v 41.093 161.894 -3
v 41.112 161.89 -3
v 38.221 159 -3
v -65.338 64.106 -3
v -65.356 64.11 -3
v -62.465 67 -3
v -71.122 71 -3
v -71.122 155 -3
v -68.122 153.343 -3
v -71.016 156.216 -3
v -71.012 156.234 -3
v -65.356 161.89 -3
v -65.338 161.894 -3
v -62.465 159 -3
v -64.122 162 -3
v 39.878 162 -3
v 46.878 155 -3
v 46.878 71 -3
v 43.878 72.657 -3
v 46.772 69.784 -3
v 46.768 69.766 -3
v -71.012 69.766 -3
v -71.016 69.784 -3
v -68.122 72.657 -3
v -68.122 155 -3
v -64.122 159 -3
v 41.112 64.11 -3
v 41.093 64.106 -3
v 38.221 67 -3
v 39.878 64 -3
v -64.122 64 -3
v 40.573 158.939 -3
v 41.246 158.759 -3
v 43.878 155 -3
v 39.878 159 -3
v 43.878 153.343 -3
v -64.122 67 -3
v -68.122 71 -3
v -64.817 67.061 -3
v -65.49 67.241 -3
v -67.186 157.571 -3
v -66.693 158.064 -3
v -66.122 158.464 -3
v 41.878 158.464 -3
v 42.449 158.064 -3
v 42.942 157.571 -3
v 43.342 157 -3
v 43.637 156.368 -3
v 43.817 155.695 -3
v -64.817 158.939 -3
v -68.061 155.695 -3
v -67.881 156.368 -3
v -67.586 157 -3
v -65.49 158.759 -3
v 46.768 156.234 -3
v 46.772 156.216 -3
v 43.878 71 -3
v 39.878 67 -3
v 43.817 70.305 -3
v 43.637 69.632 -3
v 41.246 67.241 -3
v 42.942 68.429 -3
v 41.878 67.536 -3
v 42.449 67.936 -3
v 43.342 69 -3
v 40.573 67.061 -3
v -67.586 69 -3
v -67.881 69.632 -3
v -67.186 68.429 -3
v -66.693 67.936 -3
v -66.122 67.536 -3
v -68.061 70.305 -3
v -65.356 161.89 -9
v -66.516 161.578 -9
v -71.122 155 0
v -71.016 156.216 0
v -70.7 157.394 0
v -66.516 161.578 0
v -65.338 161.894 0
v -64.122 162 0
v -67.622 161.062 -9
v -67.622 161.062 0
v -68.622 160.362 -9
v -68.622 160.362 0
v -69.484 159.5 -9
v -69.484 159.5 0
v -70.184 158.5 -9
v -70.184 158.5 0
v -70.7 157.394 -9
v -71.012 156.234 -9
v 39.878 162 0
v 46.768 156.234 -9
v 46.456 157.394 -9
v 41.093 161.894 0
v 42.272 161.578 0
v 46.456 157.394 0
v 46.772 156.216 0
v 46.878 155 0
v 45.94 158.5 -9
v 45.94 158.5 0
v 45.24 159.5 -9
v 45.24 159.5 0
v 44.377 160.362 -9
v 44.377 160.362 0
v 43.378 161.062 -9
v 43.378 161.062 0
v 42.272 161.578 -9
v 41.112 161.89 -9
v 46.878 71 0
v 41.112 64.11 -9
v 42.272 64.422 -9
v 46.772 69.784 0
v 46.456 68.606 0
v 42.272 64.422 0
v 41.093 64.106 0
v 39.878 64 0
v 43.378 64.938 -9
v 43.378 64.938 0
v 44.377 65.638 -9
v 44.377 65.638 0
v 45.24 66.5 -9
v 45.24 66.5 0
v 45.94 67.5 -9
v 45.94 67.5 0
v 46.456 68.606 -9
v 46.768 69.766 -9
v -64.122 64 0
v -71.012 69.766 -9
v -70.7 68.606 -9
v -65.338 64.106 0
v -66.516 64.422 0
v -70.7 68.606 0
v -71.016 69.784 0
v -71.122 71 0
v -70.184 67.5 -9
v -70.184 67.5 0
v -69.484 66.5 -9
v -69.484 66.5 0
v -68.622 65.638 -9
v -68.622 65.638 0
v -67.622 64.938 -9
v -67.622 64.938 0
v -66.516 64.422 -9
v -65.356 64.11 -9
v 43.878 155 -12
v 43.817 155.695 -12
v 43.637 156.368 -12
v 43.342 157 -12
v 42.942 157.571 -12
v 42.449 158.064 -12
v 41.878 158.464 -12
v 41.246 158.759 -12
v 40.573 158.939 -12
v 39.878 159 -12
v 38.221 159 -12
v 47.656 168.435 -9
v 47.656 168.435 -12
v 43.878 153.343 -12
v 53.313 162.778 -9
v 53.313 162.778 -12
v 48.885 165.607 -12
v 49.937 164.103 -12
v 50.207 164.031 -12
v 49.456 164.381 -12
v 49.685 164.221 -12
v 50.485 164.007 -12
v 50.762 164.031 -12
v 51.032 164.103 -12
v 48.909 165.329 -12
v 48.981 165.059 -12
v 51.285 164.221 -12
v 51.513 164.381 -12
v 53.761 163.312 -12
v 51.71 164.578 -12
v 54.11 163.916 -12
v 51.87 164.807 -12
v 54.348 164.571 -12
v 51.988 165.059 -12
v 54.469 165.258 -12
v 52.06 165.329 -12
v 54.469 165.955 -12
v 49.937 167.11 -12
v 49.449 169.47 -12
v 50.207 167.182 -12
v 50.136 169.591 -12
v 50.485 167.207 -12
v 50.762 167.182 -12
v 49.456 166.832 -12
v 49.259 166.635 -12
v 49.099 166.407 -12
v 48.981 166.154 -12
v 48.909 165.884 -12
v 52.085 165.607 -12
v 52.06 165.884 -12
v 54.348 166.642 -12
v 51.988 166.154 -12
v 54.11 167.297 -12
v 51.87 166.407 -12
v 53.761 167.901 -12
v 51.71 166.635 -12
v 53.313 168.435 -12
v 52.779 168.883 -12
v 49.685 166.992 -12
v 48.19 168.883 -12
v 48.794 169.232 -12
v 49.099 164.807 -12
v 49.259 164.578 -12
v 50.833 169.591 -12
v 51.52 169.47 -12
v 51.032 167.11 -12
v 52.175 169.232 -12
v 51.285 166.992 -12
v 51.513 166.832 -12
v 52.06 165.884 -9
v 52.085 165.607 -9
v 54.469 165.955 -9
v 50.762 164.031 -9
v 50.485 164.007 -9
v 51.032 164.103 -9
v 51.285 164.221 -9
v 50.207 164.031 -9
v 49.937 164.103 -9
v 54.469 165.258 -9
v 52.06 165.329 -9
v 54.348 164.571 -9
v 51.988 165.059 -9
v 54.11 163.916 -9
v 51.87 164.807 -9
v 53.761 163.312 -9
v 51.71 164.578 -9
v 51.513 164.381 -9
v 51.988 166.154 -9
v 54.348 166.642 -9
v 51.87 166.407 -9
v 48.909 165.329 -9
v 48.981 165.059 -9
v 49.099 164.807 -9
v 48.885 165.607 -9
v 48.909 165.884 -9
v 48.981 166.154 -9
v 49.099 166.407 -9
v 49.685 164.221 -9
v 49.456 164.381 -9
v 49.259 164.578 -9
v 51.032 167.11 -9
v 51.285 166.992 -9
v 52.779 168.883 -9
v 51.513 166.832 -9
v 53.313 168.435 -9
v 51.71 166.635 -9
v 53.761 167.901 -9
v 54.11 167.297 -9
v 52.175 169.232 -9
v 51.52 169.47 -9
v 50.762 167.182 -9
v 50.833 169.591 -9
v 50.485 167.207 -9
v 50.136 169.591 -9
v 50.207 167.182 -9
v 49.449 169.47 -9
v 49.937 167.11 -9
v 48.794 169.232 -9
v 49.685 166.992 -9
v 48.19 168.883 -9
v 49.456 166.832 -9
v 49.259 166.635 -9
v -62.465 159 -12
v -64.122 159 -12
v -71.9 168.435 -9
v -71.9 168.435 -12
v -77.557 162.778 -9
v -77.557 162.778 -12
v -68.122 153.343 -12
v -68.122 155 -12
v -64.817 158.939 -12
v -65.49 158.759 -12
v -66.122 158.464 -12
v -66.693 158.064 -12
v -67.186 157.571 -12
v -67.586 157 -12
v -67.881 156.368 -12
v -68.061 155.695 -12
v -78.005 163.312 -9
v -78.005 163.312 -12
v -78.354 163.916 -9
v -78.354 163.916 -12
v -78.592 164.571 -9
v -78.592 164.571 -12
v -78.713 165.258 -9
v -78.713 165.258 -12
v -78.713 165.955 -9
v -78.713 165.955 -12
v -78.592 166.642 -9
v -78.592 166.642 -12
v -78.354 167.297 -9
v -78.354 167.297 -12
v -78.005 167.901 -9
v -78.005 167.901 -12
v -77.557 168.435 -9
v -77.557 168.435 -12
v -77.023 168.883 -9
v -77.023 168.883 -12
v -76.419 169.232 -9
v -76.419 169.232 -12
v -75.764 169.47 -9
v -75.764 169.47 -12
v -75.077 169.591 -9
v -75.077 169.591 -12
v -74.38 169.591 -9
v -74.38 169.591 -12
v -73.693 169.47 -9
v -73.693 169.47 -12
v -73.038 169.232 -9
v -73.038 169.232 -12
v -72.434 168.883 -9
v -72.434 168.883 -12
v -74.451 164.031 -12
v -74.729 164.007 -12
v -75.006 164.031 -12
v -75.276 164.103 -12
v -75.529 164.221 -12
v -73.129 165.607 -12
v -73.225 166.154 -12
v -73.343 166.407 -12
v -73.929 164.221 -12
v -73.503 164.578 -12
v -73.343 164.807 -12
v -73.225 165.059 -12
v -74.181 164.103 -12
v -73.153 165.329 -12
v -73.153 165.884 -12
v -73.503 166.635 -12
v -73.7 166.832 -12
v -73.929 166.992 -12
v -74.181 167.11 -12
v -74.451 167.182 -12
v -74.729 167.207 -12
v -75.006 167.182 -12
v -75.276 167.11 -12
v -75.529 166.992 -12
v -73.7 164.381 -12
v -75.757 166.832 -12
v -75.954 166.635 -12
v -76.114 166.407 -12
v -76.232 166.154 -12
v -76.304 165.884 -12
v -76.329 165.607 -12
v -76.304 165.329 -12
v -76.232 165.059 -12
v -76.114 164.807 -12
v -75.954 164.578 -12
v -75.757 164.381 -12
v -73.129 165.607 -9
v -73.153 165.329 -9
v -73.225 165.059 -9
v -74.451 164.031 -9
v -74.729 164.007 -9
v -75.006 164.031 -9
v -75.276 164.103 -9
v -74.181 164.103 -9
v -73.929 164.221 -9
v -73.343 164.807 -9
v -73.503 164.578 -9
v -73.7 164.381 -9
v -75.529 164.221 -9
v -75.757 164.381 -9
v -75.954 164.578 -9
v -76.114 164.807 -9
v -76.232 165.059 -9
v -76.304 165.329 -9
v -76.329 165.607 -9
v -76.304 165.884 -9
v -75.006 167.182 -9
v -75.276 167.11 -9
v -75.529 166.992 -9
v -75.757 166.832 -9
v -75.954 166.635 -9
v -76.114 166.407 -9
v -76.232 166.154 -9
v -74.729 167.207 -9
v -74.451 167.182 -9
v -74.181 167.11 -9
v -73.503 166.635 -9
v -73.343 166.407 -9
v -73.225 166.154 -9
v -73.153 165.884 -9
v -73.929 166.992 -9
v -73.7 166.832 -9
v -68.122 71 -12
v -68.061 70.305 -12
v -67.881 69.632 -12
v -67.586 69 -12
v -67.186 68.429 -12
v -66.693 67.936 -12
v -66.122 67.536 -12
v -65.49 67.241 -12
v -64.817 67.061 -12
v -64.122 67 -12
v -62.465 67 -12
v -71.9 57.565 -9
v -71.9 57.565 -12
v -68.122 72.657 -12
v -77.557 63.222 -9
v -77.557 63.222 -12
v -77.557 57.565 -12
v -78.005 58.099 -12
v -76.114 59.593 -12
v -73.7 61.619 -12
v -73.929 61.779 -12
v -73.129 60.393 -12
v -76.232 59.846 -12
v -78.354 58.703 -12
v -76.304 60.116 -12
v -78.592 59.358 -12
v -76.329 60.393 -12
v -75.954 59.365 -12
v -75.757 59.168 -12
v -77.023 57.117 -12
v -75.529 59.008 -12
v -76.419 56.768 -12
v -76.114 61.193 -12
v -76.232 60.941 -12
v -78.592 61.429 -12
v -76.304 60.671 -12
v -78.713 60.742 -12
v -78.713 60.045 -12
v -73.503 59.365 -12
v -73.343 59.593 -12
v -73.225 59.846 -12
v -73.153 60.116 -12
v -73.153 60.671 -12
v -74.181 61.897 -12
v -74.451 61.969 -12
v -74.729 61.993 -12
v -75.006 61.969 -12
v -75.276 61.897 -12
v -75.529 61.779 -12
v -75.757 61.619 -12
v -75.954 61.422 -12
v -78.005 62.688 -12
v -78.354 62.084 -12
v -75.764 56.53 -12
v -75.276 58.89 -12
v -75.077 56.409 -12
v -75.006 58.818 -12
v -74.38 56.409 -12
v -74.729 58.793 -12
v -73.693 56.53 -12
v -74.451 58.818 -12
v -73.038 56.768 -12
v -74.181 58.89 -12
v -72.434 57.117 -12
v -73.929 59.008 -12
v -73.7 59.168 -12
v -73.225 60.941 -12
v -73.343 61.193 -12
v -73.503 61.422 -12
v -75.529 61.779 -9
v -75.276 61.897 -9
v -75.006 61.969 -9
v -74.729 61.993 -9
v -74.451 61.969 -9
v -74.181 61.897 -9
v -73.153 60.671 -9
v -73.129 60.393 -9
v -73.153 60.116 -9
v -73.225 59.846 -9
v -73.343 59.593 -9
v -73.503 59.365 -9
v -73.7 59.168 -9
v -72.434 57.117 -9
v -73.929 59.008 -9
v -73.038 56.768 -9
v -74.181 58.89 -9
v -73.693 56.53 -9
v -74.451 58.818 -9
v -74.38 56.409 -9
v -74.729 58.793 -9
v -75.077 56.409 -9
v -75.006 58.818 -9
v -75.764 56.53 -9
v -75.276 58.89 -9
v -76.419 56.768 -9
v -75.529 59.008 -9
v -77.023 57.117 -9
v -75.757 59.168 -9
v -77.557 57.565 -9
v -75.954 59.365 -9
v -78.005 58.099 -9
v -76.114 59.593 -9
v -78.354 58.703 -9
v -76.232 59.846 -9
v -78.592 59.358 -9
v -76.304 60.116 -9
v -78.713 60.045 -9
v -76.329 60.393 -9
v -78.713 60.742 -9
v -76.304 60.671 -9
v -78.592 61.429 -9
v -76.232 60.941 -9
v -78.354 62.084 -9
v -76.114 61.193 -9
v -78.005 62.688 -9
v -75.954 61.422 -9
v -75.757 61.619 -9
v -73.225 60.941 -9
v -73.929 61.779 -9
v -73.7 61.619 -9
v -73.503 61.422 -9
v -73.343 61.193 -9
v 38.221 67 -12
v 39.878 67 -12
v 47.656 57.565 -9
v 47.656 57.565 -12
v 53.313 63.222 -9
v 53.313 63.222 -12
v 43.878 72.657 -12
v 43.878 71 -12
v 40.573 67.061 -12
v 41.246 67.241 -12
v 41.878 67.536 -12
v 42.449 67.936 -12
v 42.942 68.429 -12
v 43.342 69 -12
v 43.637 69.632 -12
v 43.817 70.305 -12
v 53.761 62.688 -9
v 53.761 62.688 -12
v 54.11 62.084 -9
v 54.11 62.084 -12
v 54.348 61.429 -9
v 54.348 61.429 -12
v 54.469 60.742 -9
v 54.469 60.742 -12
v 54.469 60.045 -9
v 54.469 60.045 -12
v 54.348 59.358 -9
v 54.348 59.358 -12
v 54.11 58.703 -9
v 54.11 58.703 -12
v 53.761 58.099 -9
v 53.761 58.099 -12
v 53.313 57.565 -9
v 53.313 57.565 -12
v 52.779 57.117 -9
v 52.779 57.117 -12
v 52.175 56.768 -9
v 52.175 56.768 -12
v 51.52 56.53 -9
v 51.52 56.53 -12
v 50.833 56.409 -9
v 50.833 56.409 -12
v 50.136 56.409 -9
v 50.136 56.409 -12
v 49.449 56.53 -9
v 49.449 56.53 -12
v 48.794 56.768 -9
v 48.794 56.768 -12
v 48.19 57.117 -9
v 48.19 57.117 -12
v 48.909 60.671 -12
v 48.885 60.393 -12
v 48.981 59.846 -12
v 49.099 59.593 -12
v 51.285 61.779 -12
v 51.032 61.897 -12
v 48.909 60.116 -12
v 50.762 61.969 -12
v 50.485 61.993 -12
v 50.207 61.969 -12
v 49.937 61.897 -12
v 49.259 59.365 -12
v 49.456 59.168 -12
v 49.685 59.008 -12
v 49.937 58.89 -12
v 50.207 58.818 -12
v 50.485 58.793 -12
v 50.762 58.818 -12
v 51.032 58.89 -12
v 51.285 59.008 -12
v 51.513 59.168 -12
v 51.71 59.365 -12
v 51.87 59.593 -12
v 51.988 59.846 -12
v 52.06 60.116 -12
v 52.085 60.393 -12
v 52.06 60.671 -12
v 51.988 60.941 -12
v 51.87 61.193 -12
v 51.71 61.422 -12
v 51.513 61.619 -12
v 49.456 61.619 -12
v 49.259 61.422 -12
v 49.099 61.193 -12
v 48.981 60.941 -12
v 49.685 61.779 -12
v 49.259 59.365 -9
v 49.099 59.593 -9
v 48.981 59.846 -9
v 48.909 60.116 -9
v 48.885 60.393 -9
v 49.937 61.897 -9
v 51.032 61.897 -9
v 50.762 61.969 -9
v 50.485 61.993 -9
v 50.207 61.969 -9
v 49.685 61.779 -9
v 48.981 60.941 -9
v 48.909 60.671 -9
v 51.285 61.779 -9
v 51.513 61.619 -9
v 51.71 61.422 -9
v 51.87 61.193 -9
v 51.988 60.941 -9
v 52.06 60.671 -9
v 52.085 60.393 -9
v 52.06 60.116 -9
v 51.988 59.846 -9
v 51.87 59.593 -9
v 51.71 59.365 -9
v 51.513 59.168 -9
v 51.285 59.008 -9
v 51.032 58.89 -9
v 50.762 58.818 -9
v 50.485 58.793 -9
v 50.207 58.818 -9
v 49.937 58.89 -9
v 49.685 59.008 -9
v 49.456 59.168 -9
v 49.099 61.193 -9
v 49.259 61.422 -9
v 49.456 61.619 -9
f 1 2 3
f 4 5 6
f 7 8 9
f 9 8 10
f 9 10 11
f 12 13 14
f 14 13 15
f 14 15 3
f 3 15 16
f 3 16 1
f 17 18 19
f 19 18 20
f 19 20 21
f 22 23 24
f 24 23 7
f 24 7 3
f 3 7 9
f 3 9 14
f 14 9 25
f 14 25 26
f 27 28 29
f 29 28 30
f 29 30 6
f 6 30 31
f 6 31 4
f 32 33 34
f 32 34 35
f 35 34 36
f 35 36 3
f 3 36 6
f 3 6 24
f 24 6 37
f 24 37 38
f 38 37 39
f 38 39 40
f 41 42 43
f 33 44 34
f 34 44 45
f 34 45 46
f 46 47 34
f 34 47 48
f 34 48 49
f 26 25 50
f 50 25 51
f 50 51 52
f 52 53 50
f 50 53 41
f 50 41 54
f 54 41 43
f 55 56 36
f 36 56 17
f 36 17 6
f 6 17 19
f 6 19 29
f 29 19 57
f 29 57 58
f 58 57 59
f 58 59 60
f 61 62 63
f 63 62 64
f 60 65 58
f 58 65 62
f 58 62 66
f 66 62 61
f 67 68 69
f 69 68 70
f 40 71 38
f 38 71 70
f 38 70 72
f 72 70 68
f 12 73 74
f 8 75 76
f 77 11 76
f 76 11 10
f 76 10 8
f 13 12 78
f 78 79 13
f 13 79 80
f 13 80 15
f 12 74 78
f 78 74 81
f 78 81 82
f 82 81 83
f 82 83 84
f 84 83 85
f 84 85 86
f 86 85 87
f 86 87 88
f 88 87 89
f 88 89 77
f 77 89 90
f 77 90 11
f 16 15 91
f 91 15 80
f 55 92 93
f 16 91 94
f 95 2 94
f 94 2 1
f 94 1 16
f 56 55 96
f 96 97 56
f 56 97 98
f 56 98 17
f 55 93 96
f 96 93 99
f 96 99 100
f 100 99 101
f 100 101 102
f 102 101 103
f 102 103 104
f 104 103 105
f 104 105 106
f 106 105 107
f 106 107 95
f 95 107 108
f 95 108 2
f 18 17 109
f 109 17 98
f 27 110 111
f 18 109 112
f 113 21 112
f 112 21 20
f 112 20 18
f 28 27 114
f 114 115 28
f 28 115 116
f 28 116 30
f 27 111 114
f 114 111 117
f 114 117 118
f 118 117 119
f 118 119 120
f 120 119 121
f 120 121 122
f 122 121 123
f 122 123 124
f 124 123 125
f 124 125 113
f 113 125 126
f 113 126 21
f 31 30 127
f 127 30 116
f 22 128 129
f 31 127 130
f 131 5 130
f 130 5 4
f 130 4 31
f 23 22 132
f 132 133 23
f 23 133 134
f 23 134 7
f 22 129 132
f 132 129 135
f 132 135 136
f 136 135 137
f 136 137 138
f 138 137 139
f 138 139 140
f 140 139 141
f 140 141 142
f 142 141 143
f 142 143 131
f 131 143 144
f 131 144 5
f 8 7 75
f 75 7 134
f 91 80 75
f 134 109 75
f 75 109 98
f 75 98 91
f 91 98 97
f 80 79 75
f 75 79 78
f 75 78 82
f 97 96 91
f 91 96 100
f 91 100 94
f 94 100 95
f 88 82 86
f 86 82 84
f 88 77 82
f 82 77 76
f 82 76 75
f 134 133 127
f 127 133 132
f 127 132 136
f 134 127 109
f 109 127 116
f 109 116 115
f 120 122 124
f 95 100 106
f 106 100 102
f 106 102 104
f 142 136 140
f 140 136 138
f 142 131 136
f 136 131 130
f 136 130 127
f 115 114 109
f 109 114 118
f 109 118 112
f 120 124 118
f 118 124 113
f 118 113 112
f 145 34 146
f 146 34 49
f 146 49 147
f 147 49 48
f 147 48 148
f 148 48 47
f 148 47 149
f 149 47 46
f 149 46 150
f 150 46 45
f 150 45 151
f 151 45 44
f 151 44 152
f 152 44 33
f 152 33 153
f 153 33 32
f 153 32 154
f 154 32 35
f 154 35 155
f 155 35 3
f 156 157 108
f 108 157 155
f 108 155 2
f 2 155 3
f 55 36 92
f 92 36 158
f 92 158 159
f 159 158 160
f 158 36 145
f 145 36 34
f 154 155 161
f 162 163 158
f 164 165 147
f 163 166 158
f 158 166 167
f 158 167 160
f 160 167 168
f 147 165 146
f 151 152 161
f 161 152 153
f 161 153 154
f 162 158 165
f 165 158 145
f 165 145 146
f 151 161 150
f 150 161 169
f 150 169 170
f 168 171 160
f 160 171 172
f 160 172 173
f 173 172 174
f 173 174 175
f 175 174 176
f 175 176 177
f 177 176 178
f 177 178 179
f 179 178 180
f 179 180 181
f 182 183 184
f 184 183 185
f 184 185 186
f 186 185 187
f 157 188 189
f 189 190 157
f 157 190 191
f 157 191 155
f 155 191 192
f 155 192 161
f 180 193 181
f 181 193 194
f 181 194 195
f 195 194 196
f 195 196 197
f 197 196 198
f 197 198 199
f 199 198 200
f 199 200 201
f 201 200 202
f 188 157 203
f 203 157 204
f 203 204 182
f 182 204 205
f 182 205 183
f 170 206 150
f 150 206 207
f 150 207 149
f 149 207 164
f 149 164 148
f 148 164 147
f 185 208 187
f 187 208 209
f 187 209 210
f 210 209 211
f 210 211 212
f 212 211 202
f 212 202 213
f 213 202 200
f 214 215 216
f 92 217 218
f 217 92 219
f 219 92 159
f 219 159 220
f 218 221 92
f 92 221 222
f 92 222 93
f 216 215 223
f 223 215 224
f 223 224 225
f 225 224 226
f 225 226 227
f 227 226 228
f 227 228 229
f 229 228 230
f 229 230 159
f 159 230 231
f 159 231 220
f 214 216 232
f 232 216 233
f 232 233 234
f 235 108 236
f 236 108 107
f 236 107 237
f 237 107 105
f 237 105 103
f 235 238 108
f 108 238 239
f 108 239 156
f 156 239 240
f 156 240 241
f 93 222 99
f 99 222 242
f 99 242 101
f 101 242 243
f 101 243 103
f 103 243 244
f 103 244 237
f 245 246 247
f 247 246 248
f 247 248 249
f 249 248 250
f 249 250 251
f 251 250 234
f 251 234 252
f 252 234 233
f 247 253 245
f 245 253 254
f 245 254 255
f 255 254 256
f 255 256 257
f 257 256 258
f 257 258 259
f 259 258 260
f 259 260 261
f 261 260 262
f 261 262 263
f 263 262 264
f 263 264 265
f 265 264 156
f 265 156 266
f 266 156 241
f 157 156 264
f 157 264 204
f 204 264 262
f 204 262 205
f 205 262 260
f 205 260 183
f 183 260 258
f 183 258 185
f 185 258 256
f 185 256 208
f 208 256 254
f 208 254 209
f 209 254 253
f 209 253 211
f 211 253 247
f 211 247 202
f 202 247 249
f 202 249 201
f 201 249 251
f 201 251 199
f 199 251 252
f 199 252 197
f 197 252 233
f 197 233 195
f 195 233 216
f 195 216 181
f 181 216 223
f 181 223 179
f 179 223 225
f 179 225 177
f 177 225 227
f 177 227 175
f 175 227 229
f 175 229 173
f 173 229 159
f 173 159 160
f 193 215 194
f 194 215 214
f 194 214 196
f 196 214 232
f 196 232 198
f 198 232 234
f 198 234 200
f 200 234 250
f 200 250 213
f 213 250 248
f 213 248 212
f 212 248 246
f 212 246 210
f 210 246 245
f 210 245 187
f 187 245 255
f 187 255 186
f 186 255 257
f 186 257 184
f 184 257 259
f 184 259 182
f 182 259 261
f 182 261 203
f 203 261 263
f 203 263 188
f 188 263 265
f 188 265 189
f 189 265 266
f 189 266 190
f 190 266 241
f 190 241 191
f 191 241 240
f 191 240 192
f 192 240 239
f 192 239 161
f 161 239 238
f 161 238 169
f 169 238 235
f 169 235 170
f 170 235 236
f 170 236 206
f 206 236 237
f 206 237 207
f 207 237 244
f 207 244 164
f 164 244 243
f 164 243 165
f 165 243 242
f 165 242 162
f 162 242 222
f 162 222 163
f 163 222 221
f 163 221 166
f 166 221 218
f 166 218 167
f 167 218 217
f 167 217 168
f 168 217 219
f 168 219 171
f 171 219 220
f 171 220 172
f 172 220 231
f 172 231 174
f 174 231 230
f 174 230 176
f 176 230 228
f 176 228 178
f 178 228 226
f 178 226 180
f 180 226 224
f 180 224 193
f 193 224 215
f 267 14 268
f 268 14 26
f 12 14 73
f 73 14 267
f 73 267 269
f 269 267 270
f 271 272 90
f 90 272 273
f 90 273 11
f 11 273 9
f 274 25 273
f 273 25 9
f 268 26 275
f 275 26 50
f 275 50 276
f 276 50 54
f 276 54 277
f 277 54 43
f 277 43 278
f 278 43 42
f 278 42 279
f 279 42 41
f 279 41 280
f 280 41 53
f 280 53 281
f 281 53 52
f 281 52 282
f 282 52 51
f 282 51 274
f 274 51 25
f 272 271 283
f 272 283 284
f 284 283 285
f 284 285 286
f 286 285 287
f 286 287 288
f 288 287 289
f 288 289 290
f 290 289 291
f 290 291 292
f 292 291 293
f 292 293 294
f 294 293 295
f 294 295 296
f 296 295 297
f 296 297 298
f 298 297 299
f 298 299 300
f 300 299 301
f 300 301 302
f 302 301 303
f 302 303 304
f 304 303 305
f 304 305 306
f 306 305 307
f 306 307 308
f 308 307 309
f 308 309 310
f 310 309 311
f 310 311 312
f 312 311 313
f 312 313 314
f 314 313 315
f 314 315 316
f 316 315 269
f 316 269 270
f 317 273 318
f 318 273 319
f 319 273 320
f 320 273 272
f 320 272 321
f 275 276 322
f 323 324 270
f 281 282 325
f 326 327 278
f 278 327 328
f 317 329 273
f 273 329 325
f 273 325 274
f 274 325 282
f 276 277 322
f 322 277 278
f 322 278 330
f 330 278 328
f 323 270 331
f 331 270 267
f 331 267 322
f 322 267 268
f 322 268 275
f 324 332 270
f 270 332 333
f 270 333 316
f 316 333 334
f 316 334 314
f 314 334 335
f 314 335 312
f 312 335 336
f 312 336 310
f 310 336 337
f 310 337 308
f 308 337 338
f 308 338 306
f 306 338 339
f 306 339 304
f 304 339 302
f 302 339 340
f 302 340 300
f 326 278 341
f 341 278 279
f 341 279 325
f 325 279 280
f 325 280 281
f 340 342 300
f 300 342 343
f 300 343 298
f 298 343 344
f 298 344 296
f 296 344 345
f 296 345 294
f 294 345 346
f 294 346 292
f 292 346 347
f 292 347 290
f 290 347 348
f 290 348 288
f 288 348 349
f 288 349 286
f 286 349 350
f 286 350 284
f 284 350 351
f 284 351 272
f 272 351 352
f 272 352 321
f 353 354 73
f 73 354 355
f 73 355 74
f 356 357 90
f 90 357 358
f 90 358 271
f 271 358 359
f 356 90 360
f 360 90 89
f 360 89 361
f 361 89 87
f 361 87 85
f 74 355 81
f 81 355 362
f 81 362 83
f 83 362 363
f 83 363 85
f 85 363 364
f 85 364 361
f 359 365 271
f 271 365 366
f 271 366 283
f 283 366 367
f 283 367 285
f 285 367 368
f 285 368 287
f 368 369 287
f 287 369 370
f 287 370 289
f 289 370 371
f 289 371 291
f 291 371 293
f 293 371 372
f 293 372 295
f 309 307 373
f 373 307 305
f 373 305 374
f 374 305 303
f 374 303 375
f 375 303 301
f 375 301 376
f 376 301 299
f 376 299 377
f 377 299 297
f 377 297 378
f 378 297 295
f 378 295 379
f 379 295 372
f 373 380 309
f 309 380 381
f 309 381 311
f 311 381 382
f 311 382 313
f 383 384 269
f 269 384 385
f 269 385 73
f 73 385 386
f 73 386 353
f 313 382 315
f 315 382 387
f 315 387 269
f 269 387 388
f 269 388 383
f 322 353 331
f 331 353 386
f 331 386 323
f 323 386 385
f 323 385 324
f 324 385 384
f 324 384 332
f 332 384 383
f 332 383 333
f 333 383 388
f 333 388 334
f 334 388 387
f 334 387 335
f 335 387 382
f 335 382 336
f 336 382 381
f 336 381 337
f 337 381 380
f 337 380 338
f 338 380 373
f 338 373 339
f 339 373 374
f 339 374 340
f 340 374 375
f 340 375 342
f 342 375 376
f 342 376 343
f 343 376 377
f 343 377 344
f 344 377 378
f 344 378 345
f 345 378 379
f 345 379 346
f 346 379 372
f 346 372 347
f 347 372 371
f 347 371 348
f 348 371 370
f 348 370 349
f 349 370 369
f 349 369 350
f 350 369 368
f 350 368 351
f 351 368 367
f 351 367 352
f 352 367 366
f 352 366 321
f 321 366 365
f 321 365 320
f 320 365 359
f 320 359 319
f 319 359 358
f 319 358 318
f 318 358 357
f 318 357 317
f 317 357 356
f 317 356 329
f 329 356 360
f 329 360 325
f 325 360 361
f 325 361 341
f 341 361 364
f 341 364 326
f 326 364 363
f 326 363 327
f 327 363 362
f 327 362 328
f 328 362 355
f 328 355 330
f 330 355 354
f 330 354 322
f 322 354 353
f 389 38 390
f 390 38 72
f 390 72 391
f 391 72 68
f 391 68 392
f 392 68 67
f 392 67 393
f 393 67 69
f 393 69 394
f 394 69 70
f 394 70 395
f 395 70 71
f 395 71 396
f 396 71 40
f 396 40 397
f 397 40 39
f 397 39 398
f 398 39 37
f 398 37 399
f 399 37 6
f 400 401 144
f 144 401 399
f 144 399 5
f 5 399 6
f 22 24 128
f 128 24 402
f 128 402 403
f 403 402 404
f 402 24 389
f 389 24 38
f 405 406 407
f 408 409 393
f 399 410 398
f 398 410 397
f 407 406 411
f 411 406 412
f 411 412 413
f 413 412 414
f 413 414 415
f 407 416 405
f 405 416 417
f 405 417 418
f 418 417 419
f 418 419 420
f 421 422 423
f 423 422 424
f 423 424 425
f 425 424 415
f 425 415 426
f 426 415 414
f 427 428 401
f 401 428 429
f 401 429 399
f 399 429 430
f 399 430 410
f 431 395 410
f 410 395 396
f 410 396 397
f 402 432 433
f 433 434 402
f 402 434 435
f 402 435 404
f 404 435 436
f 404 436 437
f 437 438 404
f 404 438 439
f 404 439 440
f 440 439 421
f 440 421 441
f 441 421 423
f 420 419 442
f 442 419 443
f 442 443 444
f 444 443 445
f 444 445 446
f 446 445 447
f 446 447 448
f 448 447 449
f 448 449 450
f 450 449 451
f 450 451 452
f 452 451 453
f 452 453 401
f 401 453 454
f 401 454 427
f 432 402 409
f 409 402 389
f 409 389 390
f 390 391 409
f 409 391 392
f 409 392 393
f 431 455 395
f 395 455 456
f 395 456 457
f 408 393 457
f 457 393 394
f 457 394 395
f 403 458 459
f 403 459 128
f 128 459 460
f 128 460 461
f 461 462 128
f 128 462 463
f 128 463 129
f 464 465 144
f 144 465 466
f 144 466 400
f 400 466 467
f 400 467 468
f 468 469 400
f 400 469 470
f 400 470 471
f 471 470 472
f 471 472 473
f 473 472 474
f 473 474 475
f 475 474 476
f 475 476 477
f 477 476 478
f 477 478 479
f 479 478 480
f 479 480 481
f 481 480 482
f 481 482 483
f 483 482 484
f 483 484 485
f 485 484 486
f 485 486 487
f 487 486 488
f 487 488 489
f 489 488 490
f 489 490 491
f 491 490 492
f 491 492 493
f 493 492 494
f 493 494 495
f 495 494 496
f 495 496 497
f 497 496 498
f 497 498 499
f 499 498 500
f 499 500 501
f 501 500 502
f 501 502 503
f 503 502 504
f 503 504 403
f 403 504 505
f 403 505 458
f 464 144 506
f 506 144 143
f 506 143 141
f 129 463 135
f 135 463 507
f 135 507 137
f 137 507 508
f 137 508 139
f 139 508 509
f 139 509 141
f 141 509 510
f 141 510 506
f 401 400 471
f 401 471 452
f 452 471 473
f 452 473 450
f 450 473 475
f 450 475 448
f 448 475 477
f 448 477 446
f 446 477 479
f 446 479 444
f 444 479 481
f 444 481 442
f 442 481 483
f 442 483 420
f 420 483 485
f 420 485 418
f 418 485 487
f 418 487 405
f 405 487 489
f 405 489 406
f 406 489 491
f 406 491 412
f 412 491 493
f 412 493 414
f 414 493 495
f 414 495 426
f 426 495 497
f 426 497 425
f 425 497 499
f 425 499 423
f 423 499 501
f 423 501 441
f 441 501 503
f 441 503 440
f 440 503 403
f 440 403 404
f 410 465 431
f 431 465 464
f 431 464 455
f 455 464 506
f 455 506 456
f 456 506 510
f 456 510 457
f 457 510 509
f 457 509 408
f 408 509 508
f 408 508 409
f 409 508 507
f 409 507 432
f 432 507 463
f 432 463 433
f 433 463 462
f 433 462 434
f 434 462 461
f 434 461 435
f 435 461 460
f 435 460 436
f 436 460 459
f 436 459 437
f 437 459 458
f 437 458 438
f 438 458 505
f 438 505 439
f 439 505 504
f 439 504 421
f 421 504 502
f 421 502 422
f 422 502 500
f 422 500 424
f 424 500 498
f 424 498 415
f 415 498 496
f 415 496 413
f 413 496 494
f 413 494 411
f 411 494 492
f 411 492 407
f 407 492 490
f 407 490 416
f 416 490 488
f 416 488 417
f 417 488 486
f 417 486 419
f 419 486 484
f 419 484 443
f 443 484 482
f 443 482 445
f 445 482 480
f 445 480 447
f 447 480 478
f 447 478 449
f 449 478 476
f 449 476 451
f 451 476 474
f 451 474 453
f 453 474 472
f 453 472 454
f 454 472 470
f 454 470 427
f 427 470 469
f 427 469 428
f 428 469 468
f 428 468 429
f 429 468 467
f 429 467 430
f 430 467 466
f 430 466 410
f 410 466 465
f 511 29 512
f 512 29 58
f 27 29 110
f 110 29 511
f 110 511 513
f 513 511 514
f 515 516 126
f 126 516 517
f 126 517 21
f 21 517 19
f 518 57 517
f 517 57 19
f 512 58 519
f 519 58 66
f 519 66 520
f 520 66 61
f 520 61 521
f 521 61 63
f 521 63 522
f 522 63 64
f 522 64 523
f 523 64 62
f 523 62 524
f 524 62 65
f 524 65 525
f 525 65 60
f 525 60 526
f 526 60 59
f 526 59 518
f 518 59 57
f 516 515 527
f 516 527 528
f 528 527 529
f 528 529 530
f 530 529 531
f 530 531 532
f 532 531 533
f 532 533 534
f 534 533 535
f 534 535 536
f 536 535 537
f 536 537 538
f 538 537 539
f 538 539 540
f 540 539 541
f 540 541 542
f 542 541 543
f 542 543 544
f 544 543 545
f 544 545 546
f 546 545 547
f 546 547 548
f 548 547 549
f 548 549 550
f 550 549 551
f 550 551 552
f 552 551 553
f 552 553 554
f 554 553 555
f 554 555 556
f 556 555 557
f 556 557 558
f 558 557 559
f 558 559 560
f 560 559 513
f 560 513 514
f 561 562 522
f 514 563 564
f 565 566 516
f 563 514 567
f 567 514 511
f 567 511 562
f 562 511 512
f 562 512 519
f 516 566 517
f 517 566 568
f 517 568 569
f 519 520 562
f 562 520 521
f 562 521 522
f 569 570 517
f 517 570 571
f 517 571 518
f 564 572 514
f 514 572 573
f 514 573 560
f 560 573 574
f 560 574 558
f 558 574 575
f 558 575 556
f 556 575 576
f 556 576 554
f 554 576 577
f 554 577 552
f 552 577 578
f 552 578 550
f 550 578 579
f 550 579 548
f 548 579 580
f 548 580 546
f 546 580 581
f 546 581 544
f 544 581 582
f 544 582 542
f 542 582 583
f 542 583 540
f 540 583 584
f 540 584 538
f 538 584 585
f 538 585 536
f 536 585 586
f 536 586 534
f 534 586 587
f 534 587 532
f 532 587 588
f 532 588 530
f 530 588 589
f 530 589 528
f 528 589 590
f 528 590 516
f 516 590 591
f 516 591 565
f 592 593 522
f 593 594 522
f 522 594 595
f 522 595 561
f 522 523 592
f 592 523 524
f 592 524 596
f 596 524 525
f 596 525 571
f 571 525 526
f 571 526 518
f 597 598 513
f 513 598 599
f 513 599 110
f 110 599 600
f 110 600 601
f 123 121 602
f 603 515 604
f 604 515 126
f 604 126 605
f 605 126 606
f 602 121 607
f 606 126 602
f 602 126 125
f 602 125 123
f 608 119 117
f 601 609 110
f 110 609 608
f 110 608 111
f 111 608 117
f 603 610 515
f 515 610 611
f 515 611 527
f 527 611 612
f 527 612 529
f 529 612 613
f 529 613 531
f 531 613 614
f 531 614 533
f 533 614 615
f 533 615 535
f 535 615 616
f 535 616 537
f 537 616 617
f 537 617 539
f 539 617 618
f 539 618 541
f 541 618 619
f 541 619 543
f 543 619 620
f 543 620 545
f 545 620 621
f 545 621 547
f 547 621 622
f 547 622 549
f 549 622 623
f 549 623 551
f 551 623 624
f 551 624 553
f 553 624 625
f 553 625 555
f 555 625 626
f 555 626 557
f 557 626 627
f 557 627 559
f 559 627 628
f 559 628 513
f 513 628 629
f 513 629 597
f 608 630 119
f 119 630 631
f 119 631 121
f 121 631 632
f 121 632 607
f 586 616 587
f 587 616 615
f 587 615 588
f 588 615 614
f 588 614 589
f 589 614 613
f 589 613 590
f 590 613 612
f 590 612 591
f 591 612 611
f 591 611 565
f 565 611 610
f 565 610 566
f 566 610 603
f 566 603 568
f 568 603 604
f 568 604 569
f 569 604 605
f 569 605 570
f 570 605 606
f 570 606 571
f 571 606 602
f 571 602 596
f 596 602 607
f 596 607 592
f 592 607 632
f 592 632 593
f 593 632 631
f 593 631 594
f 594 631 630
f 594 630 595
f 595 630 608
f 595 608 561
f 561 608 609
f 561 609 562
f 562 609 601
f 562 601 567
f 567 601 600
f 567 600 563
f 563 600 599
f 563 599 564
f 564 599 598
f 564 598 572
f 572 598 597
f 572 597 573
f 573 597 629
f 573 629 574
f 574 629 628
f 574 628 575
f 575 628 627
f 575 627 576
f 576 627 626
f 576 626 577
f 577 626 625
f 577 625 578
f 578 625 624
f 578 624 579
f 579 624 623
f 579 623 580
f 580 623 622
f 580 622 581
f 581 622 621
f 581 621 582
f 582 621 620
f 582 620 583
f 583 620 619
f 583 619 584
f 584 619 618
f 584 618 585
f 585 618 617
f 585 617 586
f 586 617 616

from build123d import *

# Parameters (mm, degrees)
BOSS_EXTRUDE1_DEPTH     = 3
BOSS_EXTRUDE2_DEPTH     = 6
SKETCH3_R               = 1.6
BOSS_EXTRUDE3_DEPTH     = 3
MIRROR2_COPY_1_DEPTH    = 6
MIRROR2_COPY_2_SKETCH_R = 1.6
MIRROR2_COPY_2_DEPTH    = 3


with BuildPart() as part:
    # Sketch1 → Boss-Extrude1 (new body)
    with BuildSketch(Plane.XY):
        with BuildLine():
            Line((-71.122052126, 155), (-71.122052126, 71))
            ThreePointArc((-71.122052126, 71), (-69.071799594, 66.050252532), (-64.122052126, 64))
            Line((-64.122052126, 64), (39.877947874, 64))
            ThreePointArc((39.877947874, 64), (44.827695342, 66.050252532), (46.877947874, 71))
            Line((46.877947874, 71), (46.877947874, 155))
            ThreePointArc((46.877947874, 155), (44.827695342, 159.949747468), (39.877947874, 162))
            Line((39.877947874, 162), (-64.122052126, 162))
            ThreePointArc((-64.122052126, 162), (-69.071799594, 159.949747468), (-71.122052126, 155))
        make_face()
    extrude(amount=-BOSS_EXTRUDE1_DEPTH)

    # Sketch2 → Boss-Extrude2 (add)
    with BuildSketch(Plane(origin=(0, 0, -3), x_dir=(-1, 0, 0), z_dir=(0, 0, -1))):
        with BuildLine():
            Line((-46.768394201, 156.233592078), (-43.877947874, 153.343145751))
            Line((-43.877947874, 153.343145751), (-43.877947874, 155))
            ThreePointArc((-43.877947874, 155), (-42.706374999, 157.828427125), (-39.877947874, 159))
            Line((-39.877947874, 159), (-38.221093625, 159))
            Line((-38.221093625, 159), (-41.111539952, 161.890446327))
            ThreePointArc((-41.111539952, 161.890446327), (-44.827695342, 159.949747468), (-46.768394201, 156.233592078))
        make_face()
    boss_extrude2 = extrude(amount=BOSS_EXTRUDE2_DEPTH)

    # Sketch3 → Boss-Extrude3 (add)
    with BuildSketch(Plane(origin=(0, 0, -9), x_dir=(-1, 0, 0), z_dir=(0, 0, -1))):
        with BuildLine():
            Line((-43.877947874, 153.343145751), (-43.877947874, 155))
            ThreePointArc((-43.877947874, 155), (-42.706374999, 157.828427125), (-39.877947874, 159))
            Line((-39.877947874, 159), (-38.221093625, 159))
            Line((-38.221093625, 159), (-47.656122467, 168.435028843))
            ThreePointArc((-47.656122467, 168.435028843), (-53.312976717, 168.435028843), (-53.312976717, 162.778174593))
            Line((-53.312976717, 162.778174593), (-43.877947874, 153.343145751))
        make_face()
        with Locations((-50.484549592, 165.606601718)):
            Circle(SKETCH3_R, mode=Mode.SUBTRACT)
    boss_extrude3 = extrude(amount=BOSS_EXTRUDE3_DEPTH)

    # Mirror1: Boss-Extrude2, Boss-Extrude3 across plane
    add(boss_extrude2.mirror(Plane.ZY.offset(12.122052126)))
    add(boss_extrude3.mirror(Plane.ZY.offset(12.122052126)))

    # Mirror2: Boss-Extrude2, Boss-Extrude3 across plane
    add(boss_extrude2.mirror(Plane.ZX.offset(113)))
    add(boss_extrude3.mirror(Plane.ZX.offset(113)))

    # Mirror2 copy 1 sketch → Mirror2 copy 1 (add)
    with BuildSketch(Plane(origin=(-24.244104252, 226, -3), x_dir=(1, 0, 0), z_dir=(0, 0, -1))):
        with BuildLine():
            Line((-46.768394201, 156.233592078), (-43.877947874, 153.343145751))
            Line((-43.877947874, 153.343145751), (-43.877947874, 155))
            ThreePointArc((-43.877947874, 155), (-42.706374999, 157.828427125), (-39.877947874, 159))
            Line((-39.877947874, 159), (-38.221093625, 159))
            Line((-38.221093625, 159), (-41.111539952, 161.890446327))
            ThreePointArc((-41.111539952, 161.890446327), (-44.827695342, 159.949747468), (-46.768394201, 156.233592078))
        make_face()
    extrude(amount=MIRROR2_COPY_1_DEPTH)

    # Mirror2 copy 2 sketch → Mirror2 copy 2 (add)
    with BuildSketch(Plane(origin=(-24.244104252, 226, -9), x_dir=(1, 0, 0), z_dir=(0, 0, -1))):
        with BuildLine():
            Line((-43.877947874, 153.343145751), (-43.877947874, 155))
            ThreePointArc((-43.877947874, 155), (-42.706374999, 157.828427125), (-39.877947874, 159))
            Line((-39.877947874, 159), (-38.221093625, 159))
            Line((-38.221093625, 159), (-47.656122467, 168.435028843))
            ThreePointArc((-47.656122467, 168.435028843), (-53.312976717, 168.435028843), (-53.312976717, 162.778174593))
            Line((-53.312976717, 162.778174593), (-43.877947874, 153.343145751))
        make_face()
        with Locations((-50.484549592, 165.606601718)):
            Circle(MIRROR2_COPY_2_SKETCH_R, mode=Mode.SUBTRACT)
    extrude(amount=MIRROR2_COPY_2_DEPTH)


solid = part.part
